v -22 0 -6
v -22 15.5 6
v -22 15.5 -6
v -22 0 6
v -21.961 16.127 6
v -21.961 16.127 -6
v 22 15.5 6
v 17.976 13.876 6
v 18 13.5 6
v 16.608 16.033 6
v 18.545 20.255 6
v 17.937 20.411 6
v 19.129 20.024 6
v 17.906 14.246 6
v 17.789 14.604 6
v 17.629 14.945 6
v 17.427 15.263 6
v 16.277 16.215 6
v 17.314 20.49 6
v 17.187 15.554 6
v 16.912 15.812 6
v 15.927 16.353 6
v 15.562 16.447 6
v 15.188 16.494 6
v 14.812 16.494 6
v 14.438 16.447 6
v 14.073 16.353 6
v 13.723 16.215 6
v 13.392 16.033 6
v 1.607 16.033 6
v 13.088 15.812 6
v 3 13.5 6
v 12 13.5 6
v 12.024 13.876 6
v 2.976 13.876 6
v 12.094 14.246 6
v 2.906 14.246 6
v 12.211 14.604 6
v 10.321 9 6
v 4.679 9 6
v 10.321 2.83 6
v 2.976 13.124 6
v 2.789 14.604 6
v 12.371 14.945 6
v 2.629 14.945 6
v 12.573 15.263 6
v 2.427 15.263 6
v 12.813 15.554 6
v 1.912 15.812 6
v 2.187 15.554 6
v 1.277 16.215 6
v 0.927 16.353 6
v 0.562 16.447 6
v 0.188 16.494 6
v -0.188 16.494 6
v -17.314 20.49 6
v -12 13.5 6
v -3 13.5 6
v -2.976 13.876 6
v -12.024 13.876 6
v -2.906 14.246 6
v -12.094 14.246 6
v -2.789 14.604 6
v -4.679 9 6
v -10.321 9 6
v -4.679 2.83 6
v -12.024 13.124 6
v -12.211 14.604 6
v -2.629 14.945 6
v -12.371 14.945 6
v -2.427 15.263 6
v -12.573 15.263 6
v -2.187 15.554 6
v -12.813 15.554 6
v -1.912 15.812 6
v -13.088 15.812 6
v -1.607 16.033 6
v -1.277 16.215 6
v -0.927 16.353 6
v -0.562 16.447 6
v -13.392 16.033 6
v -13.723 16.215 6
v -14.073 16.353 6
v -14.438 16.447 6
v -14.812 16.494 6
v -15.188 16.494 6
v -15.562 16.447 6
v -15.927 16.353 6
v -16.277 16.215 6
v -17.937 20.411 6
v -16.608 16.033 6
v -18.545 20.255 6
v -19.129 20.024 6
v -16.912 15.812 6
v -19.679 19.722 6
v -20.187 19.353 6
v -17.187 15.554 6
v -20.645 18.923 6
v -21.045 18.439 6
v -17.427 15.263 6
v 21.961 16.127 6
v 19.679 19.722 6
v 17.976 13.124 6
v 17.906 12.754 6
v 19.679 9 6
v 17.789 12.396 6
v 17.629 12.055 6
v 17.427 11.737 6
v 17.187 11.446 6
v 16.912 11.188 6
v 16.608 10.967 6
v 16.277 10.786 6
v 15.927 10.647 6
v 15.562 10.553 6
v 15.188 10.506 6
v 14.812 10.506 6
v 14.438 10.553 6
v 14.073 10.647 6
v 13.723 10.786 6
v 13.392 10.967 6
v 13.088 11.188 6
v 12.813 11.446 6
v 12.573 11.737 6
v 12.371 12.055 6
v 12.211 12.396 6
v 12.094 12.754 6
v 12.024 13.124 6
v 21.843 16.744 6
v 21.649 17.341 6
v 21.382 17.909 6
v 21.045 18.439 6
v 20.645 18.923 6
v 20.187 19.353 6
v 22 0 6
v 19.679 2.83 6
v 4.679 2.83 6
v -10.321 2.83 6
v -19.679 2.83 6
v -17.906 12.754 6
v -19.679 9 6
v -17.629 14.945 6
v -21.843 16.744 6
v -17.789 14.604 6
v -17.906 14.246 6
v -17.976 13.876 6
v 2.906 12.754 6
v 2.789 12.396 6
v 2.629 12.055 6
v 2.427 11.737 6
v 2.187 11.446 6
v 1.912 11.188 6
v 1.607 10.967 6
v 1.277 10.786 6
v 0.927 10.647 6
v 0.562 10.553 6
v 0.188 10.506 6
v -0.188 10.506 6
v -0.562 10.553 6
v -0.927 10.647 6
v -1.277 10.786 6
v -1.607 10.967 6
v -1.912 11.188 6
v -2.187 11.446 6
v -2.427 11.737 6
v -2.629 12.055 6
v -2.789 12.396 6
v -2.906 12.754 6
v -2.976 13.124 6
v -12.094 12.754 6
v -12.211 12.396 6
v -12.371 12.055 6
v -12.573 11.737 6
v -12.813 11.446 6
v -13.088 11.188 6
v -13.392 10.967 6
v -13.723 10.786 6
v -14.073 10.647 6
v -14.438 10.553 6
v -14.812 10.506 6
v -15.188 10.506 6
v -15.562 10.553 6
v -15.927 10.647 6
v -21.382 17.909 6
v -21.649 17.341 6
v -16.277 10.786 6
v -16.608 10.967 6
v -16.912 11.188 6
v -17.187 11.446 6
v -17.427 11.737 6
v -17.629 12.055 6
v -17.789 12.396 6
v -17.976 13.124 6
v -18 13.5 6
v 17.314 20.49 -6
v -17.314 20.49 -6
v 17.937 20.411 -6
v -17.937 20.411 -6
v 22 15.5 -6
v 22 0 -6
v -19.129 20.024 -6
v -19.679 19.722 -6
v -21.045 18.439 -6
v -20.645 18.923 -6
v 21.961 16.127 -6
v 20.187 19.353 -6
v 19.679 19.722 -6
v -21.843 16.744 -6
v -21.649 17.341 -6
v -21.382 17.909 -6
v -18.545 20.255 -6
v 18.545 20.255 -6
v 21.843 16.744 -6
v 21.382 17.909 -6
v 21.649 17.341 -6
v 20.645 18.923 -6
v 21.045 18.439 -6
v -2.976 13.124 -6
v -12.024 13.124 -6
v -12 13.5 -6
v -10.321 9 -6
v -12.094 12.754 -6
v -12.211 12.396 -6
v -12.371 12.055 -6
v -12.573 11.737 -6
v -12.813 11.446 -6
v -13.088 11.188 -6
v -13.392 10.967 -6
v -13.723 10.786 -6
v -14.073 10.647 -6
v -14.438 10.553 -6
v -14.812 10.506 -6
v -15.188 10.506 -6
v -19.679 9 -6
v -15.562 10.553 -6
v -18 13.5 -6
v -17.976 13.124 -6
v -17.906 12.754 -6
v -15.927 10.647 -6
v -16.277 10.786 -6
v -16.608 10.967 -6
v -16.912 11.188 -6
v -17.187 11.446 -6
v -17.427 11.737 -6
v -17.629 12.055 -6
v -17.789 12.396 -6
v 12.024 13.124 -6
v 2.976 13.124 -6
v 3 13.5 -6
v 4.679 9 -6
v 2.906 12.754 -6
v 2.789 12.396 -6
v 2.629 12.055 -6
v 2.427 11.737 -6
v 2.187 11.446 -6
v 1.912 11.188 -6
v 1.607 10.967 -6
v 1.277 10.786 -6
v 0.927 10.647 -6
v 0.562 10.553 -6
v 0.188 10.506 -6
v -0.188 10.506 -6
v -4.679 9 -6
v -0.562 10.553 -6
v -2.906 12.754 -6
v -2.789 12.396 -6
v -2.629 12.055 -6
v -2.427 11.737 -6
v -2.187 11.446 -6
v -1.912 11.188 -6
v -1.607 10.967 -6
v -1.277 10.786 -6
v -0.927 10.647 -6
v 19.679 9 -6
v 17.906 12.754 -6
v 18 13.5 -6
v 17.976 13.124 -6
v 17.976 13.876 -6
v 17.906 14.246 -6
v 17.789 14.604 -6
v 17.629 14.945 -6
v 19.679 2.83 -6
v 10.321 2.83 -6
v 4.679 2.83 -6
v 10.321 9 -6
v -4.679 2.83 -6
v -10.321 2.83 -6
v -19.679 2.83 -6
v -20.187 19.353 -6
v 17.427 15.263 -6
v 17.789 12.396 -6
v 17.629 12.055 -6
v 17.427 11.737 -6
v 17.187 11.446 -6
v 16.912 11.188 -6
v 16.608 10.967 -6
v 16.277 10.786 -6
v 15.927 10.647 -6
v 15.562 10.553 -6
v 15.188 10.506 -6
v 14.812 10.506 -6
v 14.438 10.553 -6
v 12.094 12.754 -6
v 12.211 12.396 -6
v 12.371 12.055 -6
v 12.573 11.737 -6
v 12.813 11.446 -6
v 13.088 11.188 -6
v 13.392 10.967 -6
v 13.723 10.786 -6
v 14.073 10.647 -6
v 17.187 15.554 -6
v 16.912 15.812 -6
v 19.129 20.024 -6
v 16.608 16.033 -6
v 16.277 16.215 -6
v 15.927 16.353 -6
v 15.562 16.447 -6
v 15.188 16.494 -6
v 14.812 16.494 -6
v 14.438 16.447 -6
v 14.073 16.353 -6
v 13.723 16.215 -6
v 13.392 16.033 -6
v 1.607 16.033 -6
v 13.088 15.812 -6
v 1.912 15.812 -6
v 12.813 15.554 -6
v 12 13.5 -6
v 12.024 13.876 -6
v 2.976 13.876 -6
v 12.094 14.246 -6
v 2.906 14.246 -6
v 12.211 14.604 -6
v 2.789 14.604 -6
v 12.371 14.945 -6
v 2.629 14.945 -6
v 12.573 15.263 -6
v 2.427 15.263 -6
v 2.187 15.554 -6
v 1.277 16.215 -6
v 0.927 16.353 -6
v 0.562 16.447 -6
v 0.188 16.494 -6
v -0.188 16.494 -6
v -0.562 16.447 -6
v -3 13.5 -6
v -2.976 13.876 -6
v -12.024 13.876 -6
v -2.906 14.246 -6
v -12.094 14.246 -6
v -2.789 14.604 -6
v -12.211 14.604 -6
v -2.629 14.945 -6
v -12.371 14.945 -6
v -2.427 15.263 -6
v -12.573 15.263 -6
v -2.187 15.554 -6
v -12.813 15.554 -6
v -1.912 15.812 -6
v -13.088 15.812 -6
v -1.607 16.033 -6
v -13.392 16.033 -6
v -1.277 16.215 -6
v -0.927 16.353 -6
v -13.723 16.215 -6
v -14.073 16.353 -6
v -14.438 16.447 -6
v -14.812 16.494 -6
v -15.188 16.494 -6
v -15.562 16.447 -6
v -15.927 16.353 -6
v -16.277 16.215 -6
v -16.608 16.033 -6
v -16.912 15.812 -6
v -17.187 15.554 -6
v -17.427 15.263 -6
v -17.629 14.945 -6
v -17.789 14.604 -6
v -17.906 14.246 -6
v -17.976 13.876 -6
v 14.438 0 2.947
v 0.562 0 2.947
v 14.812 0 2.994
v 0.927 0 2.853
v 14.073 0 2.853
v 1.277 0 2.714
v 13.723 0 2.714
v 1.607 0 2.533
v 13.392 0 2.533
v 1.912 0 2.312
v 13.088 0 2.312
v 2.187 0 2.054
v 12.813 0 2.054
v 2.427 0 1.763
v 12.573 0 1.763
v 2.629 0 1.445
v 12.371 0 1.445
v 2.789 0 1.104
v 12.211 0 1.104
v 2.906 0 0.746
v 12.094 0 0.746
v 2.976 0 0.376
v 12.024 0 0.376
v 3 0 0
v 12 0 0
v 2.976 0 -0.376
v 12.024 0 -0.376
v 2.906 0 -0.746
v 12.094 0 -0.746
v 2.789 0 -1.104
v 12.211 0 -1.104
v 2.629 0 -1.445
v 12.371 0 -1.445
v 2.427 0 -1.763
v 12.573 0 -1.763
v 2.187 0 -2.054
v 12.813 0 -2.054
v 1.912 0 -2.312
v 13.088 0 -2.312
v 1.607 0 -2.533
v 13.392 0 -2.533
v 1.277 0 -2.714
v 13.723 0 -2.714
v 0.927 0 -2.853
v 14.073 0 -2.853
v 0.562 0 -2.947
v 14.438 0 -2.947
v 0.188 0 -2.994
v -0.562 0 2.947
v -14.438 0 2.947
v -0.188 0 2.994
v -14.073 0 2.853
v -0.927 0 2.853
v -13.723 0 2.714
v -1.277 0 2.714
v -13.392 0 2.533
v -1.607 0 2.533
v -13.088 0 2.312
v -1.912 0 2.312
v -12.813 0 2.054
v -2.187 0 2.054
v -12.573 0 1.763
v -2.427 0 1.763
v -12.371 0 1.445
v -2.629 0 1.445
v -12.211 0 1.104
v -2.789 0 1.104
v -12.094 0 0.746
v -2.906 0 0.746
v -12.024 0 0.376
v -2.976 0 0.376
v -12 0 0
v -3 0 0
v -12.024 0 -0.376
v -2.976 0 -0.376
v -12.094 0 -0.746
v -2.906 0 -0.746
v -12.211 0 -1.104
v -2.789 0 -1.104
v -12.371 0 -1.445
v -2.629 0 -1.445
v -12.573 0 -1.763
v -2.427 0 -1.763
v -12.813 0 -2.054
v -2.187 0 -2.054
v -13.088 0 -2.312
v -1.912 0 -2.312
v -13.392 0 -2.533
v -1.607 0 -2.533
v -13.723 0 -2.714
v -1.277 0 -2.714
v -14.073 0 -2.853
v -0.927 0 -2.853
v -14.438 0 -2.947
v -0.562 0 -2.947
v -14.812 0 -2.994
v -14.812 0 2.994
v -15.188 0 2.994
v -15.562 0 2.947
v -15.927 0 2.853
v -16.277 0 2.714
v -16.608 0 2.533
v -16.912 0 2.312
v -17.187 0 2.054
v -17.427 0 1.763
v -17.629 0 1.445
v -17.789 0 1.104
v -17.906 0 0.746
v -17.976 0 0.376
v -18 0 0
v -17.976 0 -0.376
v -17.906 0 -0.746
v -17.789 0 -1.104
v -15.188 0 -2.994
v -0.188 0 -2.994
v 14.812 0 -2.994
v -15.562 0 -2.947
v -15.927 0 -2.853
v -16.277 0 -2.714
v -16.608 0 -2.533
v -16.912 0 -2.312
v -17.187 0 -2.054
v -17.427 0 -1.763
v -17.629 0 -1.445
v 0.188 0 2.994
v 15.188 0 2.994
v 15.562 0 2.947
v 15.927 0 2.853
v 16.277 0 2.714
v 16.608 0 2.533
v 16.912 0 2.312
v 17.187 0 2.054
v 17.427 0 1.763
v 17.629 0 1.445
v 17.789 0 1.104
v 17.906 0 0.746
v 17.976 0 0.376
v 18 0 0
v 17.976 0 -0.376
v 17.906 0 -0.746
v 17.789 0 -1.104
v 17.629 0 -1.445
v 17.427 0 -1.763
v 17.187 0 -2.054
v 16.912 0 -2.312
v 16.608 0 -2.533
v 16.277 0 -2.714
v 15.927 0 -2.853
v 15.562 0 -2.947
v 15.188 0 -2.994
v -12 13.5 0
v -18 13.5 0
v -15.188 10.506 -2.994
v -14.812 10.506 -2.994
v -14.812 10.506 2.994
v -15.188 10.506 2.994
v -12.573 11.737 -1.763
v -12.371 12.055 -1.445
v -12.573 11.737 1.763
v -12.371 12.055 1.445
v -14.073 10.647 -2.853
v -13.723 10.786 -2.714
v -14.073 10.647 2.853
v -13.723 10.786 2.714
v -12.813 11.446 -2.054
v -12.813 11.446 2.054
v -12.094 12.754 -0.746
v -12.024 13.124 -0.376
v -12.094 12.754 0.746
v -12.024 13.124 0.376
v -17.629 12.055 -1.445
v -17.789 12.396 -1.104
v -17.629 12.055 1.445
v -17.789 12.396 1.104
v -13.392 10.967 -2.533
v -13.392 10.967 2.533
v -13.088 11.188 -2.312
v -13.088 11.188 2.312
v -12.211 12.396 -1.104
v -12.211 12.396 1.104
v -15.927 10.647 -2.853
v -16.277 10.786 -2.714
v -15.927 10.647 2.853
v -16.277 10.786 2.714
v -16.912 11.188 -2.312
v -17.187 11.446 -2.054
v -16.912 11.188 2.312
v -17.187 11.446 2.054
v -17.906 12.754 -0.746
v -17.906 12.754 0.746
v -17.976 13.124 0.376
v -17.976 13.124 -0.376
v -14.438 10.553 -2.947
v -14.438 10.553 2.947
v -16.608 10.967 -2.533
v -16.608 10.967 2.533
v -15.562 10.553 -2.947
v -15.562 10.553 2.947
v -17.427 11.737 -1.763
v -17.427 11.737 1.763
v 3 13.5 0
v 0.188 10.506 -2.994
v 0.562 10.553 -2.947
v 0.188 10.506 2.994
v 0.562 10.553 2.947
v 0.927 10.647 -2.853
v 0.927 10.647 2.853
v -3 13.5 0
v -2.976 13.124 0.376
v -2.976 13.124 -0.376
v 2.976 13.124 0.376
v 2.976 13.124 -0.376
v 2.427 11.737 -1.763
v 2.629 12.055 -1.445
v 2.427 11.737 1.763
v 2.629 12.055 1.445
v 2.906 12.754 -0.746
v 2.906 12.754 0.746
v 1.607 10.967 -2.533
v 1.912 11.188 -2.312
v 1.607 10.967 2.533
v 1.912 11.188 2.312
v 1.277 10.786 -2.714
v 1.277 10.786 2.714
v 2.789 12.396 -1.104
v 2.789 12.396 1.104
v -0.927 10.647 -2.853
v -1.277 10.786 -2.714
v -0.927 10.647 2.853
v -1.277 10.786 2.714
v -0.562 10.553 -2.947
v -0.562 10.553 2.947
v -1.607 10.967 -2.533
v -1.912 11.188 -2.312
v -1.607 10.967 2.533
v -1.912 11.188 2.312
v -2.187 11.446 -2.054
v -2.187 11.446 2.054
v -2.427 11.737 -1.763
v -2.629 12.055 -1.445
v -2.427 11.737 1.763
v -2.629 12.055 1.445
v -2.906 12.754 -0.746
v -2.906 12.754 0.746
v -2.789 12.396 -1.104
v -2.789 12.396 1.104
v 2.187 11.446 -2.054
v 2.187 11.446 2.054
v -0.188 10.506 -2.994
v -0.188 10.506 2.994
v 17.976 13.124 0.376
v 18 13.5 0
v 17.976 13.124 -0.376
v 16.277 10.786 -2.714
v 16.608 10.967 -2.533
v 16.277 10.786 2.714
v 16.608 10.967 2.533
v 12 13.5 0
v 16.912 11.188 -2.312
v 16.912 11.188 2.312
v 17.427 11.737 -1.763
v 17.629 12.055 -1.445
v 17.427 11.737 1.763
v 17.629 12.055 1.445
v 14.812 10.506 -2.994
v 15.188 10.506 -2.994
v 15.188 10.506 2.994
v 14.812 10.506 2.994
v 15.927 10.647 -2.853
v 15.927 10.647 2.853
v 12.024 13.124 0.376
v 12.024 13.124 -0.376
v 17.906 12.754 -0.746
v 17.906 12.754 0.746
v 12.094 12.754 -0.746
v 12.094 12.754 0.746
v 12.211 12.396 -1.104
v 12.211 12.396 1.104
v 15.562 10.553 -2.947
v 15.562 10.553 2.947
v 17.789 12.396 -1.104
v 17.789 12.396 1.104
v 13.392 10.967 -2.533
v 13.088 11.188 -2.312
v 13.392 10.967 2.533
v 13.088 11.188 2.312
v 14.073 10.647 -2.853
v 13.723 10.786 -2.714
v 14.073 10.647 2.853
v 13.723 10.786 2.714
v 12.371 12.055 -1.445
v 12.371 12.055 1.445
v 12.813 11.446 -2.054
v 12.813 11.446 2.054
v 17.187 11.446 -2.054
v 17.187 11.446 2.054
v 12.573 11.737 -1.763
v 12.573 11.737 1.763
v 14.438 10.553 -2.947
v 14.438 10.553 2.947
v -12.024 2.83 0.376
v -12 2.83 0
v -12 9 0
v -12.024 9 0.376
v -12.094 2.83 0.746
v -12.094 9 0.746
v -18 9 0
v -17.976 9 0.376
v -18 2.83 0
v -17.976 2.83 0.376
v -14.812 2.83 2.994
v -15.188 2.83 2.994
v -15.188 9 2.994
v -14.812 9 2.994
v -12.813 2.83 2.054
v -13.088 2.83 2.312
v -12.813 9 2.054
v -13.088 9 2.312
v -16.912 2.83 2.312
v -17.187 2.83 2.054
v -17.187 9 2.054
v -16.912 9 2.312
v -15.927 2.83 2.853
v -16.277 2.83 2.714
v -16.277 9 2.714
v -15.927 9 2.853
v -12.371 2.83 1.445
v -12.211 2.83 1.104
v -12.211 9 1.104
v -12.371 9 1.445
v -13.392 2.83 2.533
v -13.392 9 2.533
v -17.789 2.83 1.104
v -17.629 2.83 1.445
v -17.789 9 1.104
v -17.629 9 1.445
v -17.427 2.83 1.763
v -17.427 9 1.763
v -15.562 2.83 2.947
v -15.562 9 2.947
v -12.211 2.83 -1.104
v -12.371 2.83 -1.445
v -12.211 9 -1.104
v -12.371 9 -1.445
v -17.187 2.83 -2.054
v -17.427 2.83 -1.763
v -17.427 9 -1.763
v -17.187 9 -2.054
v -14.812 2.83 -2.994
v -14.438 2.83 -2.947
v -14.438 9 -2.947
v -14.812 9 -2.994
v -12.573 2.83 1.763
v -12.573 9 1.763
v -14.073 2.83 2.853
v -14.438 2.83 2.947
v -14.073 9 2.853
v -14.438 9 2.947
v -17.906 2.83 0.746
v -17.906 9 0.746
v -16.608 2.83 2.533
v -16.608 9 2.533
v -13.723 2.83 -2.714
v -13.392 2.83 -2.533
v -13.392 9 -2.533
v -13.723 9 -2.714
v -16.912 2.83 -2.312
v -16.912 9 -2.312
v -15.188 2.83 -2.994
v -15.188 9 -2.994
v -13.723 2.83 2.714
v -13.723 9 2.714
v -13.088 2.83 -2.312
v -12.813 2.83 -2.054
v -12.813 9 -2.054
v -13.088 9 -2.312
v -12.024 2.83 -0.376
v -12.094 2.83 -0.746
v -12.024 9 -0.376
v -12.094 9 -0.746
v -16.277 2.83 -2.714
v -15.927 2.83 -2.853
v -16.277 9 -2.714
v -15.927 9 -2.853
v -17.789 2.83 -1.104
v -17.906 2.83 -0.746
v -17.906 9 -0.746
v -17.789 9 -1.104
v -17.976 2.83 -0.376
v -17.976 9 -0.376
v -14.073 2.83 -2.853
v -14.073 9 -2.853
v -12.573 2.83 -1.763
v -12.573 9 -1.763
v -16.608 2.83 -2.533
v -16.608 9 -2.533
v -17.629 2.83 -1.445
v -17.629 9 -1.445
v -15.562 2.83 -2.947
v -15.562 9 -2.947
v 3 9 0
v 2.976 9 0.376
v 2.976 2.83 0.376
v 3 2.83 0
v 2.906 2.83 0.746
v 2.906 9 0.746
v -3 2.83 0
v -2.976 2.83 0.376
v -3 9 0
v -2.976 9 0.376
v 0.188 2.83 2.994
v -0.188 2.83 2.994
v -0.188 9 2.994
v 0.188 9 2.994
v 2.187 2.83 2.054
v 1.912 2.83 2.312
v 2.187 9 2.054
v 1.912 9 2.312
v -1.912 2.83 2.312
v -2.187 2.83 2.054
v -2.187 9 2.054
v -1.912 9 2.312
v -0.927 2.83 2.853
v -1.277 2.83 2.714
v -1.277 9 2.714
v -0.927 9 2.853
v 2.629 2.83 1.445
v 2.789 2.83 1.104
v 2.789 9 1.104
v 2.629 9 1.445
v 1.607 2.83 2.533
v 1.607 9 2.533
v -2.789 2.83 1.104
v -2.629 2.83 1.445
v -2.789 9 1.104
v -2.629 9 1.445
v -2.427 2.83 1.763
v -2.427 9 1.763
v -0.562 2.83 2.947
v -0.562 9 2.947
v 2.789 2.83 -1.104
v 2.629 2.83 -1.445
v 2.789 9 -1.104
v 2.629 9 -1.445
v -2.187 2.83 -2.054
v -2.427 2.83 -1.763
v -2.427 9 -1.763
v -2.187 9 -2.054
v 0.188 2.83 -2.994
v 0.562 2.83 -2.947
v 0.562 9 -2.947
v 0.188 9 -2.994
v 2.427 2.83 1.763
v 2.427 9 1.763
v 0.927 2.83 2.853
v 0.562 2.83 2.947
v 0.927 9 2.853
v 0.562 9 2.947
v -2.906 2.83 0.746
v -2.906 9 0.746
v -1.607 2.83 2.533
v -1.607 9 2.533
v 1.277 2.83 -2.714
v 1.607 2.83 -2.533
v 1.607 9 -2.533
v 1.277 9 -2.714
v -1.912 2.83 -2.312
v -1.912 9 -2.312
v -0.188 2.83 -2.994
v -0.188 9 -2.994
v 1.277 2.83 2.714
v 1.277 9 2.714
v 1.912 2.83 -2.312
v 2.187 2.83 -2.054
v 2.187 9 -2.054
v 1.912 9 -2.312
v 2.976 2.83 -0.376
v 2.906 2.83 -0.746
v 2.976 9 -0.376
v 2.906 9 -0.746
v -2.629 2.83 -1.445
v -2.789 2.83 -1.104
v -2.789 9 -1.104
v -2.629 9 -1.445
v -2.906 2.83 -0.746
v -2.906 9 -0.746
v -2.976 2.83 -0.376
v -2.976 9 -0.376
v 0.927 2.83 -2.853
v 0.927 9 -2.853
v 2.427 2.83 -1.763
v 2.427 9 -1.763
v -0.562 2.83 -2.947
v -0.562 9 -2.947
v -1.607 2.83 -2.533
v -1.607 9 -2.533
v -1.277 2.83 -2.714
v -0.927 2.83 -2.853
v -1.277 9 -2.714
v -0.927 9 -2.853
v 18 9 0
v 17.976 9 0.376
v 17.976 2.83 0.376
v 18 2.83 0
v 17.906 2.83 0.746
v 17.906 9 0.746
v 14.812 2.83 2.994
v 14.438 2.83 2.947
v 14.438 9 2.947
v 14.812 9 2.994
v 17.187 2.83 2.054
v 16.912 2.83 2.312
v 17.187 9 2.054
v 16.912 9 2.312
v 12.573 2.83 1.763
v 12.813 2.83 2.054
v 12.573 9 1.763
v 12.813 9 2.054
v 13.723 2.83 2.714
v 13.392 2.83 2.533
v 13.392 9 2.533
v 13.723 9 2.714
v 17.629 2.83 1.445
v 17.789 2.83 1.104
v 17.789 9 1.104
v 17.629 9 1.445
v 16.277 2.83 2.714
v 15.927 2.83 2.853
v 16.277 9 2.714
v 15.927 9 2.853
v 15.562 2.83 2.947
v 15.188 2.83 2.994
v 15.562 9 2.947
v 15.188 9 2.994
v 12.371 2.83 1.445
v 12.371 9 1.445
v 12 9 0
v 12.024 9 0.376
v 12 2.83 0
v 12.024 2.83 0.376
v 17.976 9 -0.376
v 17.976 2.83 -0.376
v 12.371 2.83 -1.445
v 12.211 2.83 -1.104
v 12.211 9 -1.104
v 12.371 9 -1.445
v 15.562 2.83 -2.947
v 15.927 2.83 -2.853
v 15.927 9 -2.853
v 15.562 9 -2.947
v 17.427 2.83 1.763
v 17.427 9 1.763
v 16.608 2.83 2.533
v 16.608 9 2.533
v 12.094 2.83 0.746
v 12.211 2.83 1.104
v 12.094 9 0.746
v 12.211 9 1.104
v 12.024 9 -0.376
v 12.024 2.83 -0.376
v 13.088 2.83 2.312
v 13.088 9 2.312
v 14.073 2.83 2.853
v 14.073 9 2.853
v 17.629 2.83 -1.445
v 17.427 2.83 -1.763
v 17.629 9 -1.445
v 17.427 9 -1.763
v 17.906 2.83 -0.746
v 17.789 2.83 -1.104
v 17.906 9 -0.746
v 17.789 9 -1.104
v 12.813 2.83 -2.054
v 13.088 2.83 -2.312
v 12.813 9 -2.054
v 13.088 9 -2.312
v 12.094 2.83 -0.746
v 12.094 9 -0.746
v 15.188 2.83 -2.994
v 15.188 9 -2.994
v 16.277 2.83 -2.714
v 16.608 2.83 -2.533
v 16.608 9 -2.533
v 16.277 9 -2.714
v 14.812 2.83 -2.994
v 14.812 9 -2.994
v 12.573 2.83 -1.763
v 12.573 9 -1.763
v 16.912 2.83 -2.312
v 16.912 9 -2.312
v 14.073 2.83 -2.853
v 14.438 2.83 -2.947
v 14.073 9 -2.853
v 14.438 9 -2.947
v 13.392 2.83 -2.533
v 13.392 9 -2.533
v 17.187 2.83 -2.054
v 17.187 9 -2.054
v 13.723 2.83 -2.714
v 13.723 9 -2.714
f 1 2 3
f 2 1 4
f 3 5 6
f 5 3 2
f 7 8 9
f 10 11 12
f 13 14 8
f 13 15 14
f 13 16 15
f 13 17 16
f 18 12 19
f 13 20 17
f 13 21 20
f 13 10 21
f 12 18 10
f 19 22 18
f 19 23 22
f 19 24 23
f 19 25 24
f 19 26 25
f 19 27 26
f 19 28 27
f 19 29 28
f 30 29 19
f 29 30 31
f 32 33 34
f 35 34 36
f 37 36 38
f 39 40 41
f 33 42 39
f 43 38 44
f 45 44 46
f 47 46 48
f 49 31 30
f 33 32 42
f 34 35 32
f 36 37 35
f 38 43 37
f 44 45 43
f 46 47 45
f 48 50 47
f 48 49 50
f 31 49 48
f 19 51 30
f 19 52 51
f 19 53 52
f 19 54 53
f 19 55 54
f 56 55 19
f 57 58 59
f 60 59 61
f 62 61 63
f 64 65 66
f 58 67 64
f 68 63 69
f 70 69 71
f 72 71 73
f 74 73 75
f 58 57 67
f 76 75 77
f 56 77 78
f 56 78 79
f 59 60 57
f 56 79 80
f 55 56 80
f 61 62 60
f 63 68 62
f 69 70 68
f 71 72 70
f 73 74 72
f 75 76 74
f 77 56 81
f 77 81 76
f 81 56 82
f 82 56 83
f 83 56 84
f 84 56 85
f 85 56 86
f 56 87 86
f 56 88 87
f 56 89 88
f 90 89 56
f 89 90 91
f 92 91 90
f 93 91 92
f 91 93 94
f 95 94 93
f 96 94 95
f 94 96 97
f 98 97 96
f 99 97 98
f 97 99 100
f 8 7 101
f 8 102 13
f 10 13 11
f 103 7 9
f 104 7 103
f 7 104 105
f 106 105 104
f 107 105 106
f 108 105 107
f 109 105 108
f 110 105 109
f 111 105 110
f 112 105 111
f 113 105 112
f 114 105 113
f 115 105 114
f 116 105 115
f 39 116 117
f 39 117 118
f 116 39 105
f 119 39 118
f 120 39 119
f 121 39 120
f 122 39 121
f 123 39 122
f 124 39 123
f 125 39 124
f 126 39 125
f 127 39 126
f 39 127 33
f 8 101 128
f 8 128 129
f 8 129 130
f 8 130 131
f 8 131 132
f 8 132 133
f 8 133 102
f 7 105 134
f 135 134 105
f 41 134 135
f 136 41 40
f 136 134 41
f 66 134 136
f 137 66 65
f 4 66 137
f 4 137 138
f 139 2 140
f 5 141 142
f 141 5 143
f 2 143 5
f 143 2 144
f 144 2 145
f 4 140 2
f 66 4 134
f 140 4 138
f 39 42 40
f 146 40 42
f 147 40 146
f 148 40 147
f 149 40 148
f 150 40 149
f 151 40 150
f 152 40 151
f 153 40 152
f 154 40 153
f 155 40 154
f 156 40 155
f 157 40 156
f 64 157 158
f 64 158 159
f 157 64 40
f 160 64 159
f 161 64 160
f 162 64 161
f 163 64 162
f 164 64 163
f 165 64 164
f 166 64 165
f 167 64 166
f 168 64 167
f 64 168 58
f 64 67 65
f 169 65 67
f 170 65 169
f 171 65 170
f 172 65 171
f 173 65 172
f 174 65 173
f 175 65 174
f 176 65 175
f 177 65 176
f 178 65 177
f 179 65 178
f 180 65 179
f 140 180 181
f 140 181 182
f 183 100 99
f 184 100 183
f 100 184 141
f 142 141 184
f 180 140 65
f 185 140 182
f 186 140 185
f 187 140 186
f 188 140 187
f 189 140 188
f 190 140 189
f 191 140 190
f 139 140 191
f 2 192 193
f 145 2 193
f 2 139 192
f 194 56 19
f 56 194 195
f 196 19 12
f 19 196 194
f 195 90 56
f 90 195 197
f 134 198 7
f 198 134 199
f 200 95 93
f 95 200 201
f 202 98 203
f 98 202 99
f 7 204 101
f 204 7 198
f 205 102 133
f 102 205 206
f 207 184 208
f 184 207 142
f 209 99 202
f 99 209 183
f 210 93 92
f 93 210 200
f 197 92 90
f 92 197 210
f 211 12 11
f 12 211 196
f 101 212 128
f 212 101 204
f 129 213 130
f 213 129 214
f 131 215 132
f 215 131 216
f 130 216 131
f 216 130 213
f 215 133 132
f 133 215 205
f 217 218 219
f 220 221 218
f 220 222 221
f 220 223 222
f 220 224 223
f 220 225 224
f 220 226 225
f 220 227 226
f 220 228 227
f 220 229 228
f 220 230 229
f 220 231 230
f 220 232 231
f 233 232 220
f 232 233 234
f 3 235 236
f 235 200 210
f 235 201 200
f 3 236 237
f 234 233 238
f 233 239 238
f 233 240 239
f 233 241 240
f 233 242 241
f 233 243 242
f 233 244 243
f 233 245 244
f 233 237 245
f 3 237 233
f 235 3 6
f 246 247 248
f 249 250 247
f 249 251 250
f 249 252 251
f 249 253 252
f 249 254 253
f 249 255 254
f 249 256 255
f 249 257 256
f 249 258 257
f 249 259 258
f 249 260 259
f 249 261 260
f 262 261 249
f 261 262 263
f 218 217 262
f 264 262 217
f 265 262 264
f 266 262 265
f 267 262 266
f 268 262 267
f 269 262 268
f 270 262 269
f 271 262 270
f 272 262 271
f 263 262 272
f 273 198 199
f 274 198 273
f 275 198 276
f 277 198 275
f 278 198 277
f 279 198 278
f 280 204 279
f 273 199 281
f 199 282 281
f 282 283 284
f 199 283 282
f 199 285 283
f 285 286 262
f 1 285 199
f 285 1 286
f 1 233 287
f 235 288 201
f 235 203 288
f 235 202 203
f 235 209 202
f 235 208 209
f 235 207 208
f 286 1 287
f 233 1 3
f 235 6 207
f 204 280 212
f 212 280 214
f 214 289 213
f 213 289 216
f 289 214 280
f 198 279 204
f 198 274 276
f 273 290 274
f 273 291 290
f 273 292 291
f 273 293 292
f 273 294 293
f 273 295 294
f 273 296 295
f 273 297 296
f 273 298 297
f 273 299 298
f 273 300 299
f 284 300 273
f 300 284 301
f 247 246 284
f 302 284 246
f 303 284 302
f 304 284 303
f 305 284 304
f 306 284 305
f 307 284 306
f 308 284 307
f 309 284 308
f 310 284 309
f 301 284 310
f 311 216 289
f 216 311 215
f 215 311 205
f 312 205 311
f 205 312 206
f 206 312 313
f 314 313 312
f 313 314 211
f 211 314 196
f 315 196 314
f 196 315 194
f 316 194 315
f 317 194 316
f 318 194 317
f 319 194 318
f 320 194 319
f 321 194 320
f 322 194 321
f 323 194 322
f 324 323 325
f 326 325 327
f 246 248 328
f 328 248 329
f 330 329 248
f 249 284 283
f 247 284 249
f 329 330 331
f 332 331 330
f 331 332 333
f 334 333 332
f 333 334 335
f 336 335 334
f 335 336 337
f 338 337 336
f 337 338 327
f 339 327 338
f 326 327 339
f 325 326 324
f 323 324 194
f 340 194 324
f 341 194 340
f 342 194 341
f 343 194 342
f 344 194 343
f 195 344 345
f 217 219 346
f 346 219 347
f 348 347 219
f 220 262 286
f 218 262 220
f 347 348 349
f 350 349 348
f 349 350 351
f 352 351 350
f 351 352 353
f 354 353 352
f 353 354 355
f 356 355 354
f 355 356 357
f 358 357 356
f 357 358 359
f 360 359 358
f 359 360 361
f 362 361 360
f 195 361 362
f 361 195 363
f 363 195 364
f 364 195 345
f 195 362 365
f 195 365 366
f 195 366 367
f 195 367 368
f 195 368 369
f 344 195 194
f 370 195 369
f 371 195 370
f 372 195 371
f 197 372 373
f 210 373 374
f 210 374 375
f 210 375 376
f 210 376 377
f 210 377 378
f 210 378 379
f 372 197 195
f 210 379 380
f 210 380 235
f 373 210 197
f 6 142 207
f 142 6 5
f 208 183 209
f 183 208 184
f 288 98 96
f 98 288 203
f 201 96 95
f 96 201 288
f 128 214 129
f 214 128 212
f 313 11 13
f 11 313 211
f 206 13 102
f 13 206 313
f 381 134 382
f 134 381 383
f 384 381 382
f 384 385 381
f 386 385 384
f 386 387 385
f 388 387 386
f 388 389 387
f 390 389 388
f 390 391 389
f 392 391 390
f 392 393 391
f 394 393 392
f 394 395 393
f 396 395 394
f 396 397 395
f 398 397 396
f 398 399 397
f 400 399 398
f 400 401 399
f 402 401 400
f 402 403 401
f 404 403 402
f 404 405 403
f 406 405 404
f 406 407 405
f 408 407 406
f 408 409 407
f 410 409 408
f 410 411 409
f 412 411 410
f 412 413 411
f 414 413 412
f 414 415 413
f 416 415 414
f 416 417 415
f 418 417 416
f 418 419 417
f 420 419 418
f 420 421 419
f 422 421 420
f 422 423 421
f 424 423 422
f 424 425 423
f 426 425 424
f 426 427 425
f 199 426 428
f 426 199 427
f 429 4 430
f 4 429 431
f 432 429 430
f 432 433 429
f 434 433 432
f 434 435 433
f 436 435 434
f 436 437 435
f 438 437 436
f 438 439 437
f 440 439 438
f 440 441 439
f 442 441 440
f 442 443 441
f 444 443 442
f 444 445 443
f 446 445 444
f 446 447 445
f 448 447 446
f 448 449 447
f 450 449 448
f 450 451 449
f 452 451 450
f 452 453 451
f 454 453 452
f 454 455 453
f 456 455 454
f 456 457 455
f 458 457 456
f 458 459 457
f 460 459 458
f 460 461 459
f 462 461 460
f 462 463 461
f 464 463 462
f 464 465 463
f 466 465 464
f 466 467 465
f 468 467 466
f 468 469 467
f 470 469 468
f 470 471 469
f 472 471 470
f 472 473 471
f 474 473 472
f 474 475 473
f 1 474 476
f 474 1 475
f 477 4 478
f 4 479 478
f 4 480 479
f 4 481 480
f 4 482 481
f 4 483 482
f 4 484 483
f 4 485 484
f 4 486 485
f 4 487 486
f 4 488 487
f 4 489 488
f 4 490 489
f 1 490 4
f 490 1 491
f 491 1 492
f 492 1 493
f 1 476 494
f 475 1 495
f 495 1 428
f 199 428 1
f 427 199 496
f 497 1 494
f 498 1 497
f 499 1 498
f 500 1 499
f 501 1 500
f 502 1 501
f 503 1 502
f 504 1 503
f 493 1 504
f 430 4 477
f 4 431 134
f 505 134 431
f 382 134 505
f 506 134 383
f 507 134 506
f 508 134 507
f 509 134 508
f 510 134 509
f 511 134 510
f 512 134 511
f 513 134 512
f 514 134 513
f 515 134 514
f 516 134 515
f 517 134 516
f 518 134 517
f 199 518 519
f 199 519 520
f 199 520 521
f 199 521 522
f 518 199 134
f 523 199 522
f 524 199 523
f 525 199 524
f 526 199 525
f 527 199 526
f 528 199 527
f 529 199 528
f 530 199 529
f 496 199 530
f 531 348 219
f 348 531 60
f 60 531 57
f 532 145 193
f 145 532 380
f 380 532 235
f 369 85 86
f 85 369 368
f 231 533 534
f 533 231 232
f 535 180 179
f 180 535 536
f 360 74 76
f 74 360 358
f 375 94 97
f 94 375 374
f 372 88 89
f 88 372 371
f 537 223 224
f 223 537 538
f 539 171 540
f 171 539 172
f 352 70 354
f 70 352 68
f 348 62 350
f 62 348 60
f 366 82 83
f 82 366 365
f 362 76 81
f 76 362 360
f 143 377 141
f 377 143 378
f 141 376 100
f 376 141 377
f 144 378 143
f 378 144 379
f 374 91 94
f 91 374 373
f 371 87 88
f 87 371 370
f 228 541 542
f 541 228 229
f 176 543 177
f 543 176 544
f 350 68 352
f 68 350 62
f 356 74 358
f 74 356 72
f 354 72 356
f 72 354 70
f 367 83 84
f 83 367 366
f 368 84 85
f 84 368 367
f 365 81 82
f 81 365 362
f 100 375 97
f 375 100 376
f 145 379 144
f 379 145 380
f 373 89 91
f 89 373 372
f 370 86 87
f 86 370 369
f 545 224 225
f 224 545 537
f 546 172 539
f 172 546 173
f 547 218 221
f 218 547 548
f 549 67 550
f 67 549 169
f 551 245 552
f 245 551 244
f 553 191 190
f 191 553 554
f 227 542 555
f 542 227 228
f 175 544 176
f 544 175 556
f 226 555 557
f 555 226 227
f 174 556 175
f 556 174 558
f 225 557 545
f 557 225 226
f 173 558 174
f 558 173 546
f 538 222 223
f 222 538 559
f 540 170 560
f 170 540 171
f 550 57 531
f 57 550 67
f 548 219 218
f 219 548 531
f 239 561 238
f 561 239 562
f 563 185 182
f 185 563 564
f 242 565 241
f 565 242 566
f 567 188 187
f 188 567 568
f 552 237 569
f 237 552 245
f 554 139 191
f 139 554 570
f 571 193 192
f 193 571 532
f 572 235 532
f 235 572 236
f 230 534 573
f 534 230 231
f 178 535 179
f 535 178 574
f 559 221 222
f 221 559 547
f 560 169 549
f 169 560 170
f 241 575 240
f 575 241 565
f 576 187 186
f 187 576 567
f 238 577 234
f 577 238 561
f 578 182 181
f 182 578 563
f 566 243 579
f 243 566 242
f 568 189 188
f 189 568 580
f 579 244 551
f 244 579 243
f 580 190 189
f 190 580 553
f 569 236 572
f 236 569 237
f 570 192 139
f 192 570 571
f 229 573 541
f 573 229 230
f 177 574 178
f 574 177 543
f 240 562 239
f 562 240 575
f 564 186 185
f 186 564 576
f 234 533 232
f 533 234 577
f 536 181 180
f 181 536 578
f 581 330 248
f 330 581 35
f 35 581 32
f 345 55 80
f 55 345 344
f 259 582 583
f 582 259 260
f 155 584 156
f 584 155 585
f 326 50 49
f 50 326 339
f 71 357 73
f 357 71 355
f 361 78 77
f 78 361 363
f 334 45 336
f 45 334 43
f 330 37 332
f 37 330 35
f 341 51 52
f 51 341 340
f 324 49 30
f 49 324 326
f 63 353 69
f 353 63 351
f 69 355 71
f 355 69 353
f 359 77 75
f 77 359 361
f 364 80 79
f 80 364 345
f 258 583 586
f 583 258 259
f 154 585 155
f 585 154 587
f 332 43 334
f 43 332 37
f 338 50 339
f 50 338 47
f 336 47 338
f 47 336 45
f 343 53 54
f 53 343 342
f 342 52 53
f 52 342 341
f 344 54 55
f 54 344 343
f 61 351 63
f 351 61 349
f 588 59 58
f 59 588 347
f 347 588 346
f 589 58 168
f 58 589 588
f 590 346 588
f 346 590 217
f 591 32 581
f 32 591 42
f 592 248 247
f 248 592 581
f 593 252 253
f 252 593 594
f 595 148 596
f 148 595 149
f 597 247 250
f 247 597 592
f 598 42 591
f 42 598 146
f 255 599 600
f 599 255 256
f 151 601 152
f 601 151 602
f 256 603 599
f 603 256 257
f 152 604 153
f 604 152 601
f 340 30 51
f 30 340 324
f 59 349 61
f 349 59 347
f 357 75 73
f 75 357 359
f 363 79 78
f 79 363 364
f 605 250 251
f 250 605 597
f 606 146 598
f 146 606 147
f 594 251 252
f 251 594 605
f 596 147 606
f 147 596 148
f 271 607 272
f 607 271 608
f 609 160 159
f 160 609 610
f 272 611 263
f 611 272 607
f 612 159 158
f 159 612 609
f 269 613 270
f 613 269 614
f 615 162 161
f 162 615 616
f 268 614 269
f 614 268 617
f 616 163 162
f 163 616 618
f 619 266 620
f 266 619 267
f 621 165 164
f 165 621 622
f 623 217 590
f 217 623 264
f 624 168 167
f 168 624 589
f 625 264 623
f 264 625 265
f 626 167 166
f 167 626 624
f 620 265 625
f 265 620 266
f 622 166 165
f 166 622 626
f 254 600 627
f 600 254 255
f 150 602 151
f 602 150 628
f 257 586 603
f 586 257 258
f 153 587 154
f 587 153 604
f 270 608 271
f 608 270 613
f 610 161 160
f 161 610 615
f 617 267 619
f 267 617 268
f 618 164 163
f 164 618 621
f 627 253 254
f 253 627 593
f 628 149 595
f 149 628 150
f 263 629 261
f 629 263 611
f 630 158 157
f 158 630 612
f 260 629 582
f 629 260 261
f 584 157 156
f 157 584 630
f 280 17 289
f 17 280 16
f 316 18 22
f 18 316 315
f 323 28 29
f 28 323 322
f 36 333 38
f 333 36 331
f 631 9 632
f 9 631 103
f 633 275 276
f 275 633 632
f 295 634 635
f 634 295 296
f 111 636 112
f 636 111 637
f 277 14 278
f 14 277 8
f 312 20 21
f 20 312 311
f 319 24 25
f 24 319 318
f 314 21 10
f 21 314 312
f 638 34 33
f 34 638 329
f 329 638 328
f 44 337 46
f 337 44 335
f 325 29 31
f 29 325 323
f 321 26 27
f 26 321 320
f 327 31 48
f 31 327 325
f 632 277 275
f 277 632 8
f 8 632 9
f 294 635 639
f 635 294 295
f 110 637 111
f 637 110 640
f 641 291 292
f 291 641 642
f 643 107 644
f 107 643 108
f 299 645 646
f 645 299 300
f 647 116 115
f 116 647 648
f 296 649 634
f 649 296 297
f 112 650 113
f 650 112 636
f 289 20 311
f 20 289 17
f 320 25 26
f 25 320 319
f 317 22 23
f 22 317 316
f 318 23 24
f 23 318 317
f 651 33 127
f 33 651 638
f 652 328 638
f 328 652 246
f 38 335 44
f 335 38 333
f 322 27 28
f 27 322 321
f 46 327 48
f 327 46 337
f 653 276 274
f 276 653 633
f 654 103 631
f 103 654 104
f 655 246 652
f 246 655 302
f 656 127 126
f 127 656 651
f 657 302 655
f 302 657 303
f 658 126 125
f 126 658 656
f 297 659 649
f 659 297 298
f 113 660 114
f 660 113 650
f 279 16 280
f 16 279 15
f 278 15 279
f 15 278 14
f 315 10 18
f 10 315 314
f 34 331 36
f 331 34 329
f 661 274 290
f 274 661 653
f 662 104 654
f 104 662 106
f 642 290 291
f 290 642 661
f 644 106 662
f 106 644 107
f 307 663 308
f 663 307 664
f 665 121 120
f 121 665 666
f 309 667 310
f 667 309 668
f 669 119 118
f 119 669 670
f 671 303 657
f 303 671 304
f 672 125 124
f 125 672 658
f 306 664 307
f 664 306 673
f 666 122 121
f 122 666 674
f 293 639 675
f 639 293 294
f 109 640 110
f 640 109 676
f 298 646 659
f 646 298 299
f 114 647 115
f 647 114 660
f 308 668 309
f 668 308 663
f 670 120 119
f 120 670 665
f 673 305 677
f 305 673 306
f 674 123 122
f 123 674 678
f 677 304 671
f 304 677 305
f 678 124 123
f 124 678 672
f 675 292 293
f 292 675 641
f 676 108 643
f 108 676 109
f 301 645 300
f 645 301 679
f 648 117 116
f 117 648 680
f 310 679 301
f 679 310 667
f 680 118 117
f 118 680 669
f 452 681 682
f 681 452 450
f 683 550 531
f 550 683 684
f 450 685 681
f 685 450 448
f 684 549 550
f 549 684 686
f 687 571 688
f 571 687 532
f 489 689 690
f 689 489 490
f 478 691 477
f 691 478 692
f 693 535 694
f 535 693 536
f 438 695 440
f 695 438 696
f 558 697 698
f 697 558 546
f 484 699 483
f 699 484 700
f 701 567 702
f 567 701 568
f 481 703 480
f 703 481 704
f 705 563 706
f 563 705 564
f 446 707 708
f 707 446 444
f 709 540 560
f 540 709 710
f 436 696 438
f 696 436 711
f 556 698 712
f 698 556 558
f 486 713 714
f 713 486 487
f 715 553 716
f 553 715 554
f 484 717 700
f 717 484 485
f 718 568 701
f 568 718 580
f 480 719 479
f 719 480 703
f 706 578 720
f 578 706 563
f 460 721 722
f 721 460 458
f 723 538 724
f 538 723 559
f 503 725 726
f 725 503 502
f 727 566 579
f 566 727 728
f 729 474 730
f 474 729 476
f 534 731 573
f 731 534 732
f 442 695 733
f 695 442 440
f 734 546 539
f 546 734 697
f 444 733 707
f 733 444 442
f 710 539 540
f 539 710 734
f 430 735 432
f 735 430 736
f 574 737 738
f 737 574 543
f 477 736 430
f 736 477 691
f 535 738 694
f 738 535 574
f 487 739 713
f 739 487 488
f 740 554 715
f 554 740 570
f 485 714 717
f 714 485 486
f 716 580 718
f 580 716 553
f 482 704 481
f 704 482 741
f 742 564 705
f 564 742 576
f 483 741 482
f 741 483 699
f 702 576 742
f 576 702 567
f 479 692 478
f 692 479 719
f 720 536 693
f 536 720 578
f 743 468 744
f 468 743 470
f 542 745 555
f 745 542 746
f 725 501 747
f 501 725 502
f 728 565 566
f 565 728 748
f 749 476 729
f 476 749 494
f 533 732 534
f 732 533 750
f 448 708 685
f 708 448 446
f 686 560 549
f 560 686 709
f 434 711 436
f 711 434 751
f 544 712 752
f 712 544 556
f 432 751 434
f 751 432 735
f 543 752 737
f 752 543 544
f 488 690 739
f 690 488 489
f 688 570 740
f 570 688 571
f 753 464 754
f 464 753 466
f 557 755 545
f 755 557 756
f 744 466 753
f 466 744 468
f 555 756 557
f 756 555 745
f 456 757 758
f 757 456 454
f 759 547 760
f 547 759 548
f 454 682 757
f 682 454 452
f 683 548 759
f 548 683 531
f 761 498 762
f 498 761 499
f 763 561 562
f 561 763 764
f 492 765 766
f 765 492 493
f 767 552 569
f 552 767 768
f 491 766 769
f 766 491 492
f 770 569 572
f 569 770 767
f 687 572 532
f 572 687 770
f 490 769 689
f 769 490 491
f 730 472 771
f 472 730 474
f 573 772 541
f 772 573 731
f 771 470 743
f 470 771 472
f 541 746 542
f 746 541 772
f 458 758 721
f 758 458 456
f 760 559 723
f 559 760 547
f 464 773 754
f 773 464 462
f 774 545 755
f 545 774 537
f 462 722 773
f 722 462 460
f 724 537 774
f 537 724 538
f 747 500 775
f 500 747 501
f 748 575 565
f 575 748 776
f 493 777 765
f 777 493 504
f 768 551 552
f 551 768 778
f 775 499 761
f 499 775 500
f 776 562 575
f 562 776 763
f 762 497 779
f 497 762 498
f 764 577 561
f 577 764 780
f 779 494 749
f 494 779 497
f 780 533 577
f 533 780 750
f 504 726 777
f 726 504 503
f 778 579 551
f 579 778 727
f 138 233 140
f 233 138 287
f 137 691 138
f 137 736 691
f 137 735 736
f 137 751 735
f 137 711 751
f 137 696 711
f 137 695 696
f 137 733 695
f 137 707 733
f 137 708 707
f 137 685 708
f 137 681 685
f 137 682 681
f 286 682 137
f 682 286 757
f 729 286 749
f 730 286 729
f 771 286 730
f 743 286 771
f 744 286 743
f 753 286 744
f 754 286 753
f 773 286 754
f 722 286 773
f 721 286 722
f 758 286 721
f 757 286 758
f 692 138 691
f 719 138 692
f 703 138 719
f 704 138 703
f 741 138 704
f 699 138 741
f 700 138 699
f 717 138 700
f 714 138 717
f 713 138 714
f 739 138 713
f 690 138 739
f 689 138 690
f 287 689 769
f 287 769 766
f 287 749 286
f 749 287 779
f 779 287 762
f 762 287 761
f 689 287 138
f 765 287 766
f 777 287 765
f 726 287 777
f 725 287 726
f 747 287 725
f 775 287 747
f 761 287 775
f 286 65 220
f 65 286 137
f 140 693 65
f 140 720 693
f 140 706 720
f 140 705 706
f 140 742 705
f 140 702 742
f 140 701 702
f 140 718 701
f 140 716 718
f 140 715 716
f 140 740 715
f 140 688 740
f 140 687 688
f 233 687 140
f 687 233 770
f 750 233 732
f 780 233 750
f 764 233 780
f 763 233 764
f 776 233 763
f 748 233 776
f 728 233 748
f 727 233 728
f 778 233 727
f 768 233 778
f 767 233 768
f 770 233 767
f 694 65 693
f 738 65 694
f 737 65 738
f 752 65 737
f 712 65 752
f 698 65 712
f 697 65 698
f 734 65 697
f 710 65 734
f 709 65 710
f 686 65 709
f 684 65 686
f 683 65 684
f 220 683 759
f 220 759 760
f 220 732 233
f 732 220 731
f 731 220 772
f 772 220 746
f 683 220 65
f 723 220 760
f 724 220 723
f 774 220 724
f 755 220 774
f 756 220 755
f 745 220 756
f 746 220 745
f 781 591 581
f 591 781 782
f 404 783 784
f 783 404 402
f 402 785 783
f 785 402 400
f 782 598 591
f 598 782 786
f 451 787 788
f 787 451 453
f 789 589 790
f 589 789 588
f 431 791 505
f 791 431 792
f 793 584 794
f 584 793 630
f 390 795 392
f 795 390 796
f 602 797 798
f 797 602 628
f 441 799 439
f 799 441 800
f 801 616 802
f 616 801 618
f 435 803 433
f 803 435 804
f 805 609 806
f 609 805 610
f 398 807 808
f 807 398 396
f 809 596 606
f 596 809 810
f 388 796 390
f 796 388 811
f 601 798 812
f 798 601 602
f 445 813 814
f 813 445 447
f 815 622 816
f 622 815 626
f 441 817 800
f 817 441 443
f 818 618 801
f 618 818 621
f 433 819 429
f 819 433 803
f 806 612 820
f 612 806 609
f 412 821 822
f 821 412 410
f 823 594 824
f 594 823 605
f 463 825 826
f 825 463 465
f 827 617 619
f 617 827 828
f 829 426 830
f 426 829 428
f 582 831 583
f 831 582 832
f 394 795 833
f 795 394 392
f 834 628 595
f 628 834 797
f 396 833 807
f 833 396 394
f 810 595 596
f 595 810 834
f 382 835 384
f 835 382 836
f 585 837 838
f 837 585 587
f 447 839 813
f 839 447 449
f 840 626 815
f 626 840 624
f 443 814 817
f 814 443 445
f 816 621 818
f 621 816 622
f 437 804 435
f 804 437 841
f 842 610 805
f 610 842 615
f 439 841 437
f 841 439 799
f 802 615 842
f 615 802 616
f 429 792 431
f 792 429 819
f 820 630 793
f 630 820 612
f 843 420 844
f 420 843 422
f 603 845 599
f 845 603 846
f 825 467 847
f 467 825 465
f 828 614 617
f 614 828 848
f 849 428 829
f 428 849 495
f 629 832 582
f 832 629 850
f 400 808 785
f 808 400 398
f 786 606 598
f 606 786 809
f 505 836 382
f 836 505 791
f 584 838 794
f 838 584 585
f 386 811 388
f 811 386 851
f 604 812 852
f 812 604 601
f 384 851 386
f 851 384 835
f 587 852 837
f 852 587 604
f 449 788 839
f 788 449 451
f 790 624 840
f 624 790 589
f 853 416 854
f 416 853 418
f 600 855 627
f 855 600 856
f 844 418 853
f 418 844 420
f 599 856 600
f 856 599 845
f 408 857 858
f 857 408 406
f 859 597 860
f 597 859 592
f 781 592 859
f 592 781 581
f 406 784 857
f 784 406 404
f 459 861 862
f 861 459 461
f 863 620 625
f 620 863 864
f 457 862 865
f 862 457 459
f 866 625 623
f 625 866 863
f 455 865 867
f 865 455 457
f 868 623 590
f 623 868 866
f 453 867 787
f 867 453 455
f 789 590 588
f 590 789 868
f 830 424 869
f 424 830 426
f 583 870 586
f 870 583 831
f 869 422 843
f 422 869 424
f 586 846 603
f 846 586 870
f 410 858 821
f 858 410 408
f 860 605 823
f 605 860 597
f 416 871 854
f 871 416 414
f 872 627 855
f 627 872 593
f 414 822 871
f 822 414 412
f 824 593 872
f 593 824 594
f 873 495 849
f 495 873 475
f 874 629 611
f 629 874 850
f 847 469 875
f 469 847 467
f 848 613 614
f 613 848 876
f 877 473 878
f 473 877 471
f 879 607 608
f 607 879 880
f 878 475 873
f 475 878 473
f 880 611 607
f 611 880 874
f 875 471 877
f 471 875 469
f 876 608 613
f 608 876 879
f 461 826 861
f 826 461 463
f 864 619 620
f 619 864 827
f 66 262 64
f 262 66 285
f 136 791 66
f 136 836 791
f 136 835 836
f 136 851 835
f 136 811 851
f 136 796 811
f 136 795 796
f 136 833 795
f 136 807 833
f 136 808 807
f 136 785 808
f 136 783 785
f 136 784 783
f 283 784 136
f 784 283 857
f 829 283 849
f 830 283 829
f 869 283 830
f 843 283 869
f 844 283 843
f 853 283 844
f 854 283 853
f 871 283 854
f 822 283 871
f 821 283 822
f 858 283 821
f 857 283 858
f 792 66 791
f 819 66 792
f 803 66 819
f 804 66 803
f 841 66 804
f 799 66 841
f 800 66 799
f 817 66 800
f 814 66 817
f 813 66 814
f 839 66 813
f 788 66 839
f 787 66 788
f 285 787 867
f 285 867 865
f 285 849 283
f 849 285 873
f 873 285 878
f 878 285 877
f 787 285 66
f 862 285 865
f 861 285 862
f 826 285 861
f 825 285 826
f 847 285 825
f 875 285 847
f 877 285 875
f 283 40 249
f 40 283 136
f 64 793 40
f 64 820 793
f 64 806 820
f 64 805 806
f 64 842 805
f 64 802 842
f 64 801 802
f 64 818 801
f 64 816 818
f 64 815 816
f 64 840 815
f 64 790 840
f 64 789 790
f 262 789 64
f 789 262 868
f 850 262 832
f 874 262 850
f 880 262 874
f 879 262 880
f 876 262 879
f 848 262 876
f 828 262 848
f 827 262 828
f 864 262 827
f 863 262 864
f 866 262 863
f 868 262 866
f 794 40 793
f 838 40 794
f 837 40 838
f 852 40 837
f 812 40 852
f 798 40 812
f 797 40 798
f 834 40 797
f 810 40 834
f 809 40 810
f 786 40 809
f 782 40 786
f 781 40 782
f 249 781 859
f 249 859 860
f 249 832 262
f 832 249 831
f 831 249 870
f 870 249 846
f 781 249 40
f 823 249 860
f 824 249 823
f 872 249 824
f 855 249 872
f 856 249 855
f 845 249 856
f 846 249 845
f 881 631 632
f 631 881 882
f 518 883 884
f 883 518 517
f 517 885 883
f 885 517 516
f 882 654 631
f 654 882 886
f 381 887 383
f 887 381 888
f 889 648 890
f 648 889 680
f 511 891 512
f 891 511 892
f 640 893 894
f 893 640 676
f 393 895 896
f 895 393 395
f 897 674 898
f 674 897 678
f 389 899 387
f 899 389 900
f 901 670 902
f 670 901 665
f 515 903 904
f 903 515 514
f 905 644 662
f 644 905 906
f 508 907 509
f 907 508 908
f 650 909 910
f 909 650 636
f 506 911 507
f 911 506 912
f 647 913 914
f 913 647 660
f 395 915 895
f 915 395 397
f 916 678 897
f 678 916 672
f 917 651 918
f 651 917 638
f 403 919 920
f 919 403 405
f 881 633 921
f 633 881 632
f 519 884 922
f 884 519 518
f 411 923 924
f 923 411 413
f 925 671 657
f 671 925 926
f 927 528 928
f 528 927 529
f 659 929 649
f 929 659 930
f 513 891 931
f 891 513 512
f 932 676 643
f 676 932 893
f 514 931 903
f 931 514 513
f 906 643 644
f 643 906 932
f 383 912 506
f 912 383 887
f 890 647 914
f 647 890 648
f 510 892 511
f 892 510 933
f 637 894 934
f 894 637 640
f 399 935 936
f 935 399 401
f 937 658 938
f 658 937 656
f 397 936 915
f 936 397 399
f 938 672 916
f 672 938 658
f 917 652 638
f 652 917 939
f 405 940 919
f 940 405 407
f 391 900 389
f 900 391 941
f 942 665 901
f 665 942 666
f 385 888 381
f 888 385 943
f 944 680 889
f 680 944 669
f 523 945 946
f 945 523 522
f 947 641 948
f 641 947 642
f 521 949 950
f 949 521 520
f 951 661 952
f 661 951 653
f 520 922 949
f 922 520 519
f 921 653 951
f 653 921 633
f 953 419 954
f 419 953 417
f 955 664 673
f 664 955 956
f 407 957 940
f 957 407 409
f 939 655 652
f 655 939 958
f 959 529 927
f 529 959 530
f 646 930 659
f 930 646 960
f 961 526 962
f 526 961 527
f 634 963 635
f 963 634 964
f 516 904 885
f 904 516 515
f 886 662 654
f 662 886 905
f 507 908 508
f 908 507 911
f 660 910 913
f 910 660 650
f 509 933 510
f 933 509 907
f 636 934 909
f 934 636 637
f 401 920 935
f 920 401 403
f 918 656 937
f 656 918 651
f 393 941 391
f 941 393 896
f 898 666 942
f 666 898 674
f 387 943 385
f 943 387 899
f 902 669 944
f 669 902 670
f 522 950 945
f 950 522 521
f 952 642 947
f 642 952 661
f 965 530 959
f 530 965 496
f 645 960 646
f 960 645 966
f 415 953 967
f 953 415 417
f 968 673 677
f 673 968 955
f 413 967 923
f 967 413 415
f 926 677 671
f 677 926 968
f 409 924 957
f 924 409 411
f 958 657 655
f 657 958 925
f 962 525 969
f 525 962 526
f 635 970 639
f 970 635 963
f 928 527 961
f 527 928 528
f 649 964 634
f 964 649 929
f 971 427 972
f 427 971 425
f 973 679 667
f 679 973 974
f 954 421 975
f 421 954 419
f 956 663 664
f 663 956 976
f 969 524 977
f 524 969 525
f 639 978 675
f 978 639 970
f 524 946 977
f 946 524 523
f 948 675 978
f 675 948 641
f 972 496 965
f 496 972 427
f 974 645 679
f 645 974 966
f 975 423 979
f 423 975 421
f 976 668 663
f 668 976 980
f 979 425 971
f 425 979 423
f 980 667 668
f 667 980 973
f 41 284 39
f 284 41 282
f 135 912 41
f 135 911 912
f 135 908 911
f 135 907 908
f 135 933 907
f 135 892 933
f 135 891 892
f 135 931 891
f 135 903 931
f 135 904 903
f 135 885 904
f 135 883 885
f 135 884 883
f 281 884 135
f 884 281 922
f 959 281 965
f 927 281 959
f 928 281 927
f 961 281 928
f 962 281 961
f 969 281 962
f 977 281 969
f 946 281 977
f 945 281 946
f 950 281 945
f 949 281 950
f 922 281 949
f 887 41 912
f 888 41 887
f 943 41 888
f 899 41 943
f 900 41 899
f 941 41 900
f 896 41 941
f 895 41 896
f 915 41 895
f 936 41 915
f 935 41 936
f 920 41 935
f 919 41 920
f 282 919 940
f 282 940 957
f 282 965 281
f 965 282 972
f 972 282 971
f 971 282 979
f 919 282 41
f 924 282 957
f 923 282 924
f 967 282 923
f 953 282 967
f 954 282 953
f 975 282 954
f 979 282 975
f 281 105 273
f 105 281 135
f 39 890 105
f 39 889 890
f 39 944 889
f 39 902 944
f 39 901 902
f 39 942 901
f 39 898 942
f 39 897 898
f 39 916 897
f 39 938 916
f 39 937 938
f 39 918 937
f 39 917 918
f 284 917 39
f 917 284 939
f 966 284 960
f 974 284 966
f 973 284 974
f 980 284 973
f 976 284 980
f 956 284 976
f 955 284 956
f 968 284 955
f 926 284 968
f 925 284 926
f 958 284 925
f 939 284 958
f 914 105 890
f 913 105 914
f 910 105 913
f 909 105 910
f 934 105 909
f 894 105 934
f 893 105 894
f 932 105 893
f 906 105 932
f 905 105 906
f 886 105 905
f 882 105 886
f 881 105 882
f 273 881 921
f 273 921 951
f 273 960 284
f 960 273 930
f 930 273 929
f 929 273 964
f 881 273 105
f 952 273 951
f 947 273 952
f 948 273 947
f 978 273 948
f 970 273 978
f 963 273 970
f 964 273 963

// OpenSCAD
$fn = 50;


difference() {
	union() {
		translate(v = [0, 13.5000000000, -6.0000000000]) {
			rotate(a = [0, 0, 0]) {
				hull() {
					translate(v = [-17.0000000000, 2.0000000000, 0]) {
						rotate(a = [0, 0, 0]) {
							translate(v = [0, 0, 0]) {
								rotate(a = [0, 0, 0]) {
									cylinder(h = 12, r = 5);
								}
							}
						}
					}
					translate(v = [17.0000000000, 2.0000000000, 0]) {
						rotate(a = [0, 0, 0]) {
							translate(v = [0, 0, 0]) {
								rotate(a = [0, 0, 0]) {
									cylinder(h = 12, r = 5);
								}
							}
						}
					}
					translate(v = [-17.0000000000, -2.0000000000, 0]) {
						rotate(a = [0, 0, 0]) {
							translate(v = [0, 0, 0]) {
								rotate(a = [0, 0, 0]) {
									cylinder(h = 12, r = 5);
								}
							}
						}
					}
					translate(v = [17.0000000000, -2.0000000000, 0]) {
						rotate(a = [0, 0, 0]) {
							translate(v = [0, 0, 0]) {
								rotate(a = [0, 0, 0]) {
									cylinder(h = 12, r = 5);
								}
							}
						}
					}
				}
			}
		}
		translate(v = [-22.0000000000, 0, -6.0000000000]) {
			rotate(a = [0, 0, 0]) {
				cube(size = [44, 13.5000000000, 12]);
			}
		}
	}
	union() {
		translate(v = [-15.0000000000, 13.5000000000, -6.0000000000]) {
			rotate(a = [0, 0, 0]) {
				translate(v = [0, 0, -50]) {
					rotate(a = [0, 0, 0]) {
						cylinder(h = 100, r = 3.0000000000);
					}
				}
			}
		}
		translate(v = [0.0000000000, 13.5000000000, -6.0000000000]) {
			rotate(a = [0, 0, 0]) {
				translate(v = [0, 0, -50]) {
					rotate(a = [0, 0, 0]) {
						cylinder(h = 100, r = 3.0000000000);
					}
				}
			}
		}
		translate(v = [15.0000000000, 13.5000000000, -6.0000000000]) {
			rotate(a = [0, 0, 0]) {
				translate(v = [0, 0, -50]) {
					rotate(a = [0, 0, 0]) {
						cylinder(h = 100, r = 3.0000000000);
					}
				}
			}
		}
		translate(v = [-15.0000000000, 13.5000000000, 0]) {
			rotate(a = [90, 0, 0]) {
				cylinder(h = 13.5000000000, r = 3.0000000000);
			}
		}
		translate(v = [-19.6793760832, 9, -25]) {
			rotate(a = [90, 0, 0]) {
				cube(size = [9.3587521664, 100, 6.1700000000]);
			}
		}
		translate(v = [0.0000000000, 13.5000000000, 0]) {
			rotate(a = [90, 0, 0]) {
				cylinder(h = 13.5000000000, r = 3.0000000000);
			}
		}
		translate(v = [-4.6793760832, 9, -25]) {
			rotate(a = [90, 0, 0]) {
				cube(size = [9.3587521664, 100, 6.1700000000]);
			}
		}
		translate(v = [15.0000000000, 13.5000000000, 0]) {
			rotate(a = [90, 0, 0]) {
				cylinder(h = 13.5000000000, r = 3.0000000000);
			}
		}
		translate(v = [10.3206239168, 9, -25]) {
			rotate(a = [90, 0, 0]) {
				cube(size = [9.3587521664, 100, 6.1700000000]);
			}
		}
	}
}
